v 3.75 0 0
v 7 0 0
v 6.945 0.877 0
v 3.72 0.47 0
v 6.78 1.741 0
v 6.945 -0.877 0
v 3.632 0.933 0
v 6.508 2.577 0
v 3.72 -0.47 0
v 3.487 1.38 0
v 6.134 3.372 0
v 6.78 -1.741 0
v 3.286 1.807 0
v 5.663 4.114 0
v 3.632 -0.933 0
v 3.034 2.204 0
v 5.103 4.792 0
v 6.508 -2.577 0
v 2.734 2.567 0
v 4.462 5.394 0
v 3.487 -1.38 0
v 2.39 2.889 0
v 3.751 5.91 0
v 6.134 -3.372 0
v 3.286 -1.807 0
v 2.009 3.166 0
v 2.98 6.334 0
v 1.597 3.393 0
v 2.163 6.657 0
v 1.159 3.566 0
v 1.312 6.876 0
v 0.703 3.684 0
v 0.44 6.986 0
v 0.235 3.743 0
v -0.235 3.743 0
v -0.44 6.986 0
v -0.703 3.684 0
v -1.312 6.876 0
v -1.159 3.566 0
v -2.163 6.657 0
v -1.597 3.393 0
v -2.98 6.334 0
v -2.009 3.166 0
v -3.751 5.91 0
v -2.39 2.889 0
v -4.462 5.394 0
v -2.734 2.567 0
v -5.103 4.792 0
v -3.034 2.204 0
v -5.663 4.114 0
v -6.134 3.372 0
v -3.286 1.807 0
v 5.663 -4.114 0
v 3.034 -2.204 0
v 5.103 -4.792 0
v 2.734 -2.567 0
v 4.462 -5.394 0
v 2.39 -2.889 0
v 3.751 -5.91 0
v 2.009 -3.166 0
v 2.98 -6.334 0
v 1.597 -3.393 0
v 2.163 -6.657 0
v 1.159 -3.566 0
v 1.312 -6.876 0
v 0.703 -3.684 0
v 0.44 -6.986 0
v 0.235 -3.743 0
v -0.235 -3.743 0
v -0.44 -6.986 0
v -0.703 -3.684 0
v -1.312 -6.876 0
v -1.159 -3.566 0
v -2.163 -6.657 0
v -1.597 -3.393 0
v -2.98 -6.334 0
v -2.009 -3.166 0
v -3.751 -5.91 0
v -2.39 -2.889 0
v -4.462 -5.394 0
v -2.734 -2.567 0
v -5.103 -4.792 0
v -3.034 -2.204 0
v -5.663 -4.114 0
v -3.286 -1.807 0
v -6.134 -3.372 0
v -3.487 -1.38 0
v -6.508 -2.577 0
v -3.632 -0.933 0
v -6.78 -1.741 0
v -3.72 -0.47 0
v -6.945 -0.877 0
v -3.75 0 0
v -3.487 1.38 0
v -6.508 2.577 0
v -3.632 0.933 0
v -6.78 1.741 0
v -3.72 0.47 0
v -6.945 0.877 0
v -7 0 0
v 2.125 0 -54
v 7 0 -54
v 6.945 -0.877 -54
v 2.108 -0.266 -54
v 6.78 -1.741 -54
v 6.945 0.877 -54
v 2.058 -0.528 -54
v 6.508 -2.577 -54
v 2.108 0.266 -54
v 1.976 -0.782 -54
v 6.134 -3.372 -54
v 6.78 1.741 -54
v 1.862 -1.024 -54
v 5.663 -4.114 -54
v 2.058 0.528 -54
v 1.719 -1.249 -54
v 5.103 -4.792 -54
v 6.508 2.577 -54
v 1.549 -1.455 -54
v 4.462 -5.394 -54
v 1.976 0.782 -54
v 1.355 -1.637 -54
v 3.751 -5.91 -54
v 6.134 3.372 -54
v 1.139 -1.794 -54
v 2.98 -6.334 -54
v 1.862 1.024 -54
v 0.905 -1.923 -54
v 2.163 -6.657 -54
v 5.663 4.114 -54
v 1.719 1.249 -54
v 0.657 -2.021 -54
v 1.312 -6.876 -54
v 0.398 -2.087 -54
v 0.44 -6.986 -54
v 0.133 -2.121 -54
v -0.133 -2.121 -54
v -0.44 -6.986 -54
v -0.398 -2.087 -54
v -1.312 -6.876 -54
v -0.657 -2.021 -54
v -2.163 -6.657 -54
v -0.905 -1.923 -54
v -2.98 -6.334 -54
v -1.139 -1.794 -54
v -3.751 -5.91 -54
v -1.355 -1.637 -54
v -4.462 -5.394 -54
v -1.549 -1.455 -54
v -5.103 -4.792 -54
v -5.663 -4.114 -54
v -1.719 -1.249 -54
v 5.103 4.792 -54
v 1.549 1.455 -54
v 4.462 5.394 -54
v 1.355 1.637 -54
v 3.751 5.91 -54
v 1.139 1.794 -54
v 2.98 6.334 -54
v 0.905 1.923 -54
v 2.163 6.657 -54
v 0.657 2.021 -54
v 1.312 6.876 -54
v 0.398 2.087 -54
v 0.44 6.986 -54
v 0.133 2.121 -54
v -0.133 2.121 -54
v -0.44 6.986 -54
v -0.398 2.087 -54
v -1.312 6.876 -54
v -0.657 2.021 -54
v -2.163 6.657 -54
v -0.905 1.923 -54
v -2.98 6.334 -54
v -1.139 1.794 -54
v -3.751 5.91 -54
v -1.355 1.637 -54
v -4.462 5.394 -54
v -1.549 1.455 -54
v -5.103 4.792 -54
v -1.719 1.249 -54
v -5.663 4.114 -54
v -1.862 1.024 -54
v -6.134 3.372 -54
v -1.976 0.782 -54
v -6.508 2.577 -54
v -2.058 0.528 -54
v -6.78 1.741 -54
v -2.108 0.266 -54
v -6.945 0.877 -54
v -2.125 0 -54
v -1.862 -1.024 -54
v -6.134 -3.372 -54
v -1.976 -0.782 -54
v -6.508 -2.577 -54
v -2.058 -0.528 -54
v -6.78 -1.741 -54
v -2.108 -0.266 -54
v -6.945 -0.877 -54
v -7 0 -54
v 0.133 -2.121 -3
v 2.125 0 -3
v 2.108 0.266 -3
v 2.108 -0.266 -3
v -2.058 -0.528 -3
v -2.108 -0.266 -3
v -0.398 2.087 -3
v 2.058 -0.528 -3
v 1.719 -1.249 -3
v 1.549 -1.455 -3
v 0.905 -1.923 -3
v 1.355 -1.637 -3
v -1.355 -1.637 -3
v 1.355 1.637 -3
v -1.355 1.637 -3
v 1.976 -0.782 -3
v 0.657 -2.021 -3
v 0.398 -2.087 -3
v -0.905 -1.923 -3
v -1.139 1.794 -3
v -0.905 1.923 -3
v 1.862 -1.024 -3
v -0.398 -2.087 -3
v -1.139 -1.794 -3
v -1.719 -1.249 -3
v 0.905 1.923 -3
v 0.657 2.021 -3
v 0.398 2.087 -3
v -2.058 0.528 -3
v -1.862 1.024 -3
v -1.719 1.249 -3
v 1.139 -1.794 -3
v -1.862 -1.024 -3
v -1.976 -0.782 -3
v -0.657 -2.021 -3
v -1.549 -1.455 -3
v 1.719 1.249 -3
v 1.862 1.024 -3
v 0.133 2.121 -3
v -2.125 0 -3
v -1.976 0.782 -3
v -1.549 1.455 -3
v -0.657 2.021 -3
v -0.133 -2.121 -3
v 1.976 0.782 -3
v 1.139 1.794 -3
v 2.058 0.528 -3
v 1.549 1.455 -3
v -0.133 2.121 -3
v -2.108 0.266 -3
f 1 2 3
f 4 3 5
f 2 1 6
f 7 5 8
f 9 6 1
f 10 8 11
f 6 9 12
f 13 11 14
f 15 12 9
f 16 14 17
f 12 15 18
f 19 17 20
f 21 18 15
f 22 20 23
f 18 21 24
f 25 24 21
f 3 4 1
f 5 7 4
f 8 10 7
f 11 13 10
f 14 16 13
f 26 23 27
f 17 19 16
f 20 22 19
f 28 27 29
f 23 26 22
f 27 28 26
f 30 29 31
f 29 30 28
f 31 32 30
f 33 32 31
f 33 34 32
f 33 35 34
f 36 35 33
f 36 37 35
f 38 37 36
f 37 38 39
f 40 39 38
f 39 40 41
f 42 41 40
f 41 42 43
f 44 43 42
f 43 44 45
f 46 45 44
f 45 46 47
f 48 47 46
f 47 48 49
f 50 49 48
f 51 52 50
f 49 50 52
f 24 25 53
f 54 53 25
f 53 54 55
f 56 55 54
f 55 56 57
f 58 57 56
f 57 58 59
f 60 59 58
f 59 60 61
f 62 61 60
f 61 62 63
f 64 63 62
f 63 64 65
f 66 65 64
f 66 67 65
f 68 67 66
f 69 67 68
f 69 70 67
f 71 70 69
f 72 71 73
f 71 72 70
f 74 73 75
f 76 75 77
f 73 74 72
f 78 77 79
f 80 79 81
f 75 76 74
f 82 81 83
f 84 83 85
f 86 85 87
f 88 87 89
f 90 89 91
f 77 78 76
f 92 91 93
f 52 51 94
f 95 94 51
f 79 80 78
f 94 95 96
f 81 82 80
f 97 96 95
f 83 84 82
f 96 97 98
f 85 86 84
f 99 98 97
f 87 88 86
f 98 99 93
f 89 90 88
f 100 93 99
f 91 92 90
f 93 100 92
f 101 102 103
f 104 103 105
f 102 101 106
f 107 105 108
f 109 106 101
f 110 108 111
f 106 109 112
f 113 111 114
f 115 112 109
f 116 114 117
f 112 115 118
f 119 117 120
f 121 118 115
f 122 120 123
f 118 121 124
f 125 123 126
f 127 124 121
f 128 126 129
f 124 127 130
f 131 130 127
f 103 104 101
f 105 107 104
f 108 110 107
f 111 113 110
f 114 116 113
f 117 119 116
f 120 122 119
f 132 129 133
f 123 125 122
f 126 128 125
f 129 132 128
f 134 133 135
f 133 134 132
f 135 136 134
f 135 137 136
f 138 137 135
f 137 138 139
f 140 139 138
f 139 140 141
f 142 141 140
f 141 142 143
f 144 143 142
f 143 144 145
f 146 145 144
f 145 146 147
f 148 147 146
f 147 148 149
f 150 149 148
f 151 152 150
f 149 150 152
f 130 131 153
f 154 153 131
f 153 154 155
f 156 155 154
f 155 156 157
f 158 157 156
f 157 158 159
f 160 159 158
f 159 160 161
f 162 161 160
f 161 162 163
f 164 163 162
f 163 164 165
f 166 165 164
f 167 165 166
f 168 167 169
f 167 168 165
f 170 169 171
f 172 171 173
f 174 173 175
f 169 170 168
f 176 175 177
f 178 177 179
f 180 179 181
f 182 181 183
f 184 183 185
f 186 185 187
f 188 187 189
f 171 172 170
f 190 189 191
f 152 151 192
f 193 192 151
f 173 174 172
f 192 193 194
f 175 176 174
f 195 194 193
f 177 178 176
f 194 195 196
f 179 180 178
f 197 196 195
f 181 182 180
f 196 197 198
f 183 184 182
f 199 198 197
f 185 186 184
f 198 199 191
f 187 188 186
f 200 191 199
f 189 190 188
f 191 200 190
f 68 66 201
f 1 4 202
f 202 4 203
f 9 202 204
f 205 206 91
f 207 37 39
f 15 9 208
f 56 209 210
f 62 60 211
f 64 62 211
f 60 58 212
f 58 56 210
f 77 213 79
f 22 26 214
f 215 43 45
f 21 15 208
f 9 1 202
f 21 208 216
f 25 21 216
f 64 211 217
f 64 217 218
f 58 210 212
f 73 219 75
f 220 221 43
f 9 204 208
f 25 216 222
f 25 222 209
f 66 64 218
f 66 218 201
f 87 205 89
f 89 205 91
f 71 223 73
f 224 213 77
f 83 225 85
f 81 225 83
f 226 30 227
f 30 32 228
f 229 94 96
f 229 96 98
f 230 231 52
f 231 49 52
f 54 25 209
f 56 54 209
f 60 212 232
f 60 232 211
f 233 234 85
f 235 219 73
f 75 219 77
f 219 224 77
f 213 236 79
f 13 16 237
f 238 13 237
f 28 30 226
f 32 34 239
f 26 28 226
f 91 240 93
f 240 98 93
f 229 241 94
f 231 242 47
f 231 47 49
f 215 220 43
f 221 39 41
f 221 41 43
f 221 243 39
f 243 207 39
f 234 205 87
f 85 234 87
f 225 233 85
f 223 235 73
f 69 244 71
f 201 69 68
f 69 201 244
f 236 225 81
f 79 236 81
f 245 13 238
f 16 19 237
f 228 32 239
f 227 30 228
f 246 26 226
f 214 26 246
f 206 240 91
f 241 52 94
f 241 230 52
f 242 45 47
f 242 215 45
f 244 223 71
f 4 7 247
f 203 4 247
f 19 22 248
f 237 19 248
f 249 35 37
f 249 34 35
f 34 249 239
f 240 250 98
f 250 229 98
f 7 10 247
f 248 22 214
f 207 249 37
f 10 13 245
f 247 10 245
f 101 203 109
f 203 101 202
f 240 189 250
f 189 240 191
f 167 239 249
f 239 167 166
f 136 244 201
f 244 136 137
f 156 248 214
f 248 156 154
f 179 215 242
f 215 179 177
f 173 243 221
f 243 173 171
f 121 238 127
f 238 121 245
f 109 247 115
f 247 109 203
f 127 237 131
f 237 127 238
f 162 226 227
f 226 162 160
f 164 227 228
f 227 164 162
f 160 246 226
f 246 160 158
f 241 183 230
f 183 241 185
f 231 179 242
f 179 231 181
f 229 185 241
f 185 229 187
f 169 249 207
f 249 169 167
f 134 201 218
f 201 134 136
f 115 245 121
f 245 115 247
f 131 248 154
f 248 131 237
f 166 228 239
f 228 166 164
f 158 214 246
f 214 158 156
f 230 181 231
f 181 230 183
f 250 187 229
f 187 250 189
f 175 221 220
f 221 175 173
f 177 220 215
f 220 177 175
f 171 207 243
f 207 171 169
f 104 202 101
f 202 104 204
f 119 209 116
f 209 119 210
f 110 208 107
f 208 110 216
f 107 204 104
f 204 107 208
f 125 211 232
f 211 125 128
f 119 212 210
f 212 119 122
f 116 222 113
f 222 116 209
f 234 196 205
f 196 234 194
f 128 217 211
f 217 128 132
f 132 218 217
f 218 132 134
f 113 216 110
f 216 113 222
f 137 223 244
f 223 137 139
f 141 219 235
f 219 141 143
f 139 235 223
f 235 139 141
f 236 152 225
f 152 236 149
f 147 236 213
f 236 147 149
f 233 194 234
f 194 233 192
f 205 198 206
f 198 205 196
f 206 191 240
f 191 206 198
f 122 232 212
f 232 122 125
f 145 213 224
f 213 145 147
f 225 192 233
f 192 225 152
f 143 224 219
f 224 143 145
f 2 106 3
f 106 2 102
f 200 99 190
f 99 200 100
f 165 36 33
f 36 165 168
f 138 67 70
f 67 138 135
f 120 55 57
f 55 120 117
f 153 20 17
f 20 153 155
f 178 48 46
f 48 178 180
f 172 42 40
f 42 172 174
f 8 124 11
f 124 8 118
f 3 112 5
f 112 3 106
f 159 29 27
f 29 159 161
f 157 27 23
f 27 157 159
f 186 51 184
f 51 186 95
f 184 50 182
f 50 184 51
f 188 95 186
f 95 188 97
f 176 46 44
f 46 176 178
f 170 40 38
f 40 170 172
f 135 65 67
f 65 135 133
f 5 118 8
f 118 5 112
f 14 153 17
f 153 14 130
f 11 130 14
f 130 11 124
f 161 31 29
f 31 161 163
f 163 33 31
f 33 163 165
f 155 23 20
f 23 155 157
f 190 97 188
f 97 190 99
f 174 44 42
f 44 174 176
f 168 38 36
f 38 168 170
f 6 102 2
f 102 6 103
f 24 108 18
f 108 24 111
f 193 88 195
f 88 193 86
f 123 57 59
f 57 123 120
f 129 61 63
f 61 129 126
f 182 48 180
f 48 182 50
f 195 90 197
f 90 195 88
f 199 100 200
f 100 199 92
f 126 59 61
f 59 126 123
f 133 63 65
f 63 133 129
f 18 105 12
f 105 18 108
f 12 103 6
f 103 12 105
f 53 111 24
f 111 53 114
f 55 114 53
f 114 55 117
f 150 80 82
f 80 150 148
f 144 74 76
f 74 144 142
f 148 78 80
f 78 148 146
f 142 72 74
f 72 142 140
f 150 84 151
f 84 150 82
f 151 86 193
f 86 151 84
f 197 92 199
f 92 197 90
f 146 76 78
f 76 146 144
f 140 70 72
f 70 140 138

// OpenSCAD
$fn = 50;


difference() {
	union() {
		translate(v = [0, 0, -54.0000000000]) {
			cylinder(h = 54, r = 7.0000000000);
		}
	}
	union() {
		translate(v = [0, 0, 0]) {
			rotate(a = [0, 0, 0]) {
				difference() {
					union() {
						#translate(v = [0, 0, -54.0000000000]) {
							cylinder(h = 54, r = 2.0000000000);
						}
						#translate(v = [0, 0, -3]) {
							cylinder(h = 3, r1 = 2.1250000000, r2 = 3.7500000000);
						}
						#translate(v = [0, 0, -54.0000000000]) {
							cylinder(h = 54, r = 2.1250000000);
						}
						#translate(v = [0, 0, -54.0000000000]) {
							cylinder(h = 54, r = 2.0000000000);
						}
					}
					union();
				}
			}
		}
	}
}
